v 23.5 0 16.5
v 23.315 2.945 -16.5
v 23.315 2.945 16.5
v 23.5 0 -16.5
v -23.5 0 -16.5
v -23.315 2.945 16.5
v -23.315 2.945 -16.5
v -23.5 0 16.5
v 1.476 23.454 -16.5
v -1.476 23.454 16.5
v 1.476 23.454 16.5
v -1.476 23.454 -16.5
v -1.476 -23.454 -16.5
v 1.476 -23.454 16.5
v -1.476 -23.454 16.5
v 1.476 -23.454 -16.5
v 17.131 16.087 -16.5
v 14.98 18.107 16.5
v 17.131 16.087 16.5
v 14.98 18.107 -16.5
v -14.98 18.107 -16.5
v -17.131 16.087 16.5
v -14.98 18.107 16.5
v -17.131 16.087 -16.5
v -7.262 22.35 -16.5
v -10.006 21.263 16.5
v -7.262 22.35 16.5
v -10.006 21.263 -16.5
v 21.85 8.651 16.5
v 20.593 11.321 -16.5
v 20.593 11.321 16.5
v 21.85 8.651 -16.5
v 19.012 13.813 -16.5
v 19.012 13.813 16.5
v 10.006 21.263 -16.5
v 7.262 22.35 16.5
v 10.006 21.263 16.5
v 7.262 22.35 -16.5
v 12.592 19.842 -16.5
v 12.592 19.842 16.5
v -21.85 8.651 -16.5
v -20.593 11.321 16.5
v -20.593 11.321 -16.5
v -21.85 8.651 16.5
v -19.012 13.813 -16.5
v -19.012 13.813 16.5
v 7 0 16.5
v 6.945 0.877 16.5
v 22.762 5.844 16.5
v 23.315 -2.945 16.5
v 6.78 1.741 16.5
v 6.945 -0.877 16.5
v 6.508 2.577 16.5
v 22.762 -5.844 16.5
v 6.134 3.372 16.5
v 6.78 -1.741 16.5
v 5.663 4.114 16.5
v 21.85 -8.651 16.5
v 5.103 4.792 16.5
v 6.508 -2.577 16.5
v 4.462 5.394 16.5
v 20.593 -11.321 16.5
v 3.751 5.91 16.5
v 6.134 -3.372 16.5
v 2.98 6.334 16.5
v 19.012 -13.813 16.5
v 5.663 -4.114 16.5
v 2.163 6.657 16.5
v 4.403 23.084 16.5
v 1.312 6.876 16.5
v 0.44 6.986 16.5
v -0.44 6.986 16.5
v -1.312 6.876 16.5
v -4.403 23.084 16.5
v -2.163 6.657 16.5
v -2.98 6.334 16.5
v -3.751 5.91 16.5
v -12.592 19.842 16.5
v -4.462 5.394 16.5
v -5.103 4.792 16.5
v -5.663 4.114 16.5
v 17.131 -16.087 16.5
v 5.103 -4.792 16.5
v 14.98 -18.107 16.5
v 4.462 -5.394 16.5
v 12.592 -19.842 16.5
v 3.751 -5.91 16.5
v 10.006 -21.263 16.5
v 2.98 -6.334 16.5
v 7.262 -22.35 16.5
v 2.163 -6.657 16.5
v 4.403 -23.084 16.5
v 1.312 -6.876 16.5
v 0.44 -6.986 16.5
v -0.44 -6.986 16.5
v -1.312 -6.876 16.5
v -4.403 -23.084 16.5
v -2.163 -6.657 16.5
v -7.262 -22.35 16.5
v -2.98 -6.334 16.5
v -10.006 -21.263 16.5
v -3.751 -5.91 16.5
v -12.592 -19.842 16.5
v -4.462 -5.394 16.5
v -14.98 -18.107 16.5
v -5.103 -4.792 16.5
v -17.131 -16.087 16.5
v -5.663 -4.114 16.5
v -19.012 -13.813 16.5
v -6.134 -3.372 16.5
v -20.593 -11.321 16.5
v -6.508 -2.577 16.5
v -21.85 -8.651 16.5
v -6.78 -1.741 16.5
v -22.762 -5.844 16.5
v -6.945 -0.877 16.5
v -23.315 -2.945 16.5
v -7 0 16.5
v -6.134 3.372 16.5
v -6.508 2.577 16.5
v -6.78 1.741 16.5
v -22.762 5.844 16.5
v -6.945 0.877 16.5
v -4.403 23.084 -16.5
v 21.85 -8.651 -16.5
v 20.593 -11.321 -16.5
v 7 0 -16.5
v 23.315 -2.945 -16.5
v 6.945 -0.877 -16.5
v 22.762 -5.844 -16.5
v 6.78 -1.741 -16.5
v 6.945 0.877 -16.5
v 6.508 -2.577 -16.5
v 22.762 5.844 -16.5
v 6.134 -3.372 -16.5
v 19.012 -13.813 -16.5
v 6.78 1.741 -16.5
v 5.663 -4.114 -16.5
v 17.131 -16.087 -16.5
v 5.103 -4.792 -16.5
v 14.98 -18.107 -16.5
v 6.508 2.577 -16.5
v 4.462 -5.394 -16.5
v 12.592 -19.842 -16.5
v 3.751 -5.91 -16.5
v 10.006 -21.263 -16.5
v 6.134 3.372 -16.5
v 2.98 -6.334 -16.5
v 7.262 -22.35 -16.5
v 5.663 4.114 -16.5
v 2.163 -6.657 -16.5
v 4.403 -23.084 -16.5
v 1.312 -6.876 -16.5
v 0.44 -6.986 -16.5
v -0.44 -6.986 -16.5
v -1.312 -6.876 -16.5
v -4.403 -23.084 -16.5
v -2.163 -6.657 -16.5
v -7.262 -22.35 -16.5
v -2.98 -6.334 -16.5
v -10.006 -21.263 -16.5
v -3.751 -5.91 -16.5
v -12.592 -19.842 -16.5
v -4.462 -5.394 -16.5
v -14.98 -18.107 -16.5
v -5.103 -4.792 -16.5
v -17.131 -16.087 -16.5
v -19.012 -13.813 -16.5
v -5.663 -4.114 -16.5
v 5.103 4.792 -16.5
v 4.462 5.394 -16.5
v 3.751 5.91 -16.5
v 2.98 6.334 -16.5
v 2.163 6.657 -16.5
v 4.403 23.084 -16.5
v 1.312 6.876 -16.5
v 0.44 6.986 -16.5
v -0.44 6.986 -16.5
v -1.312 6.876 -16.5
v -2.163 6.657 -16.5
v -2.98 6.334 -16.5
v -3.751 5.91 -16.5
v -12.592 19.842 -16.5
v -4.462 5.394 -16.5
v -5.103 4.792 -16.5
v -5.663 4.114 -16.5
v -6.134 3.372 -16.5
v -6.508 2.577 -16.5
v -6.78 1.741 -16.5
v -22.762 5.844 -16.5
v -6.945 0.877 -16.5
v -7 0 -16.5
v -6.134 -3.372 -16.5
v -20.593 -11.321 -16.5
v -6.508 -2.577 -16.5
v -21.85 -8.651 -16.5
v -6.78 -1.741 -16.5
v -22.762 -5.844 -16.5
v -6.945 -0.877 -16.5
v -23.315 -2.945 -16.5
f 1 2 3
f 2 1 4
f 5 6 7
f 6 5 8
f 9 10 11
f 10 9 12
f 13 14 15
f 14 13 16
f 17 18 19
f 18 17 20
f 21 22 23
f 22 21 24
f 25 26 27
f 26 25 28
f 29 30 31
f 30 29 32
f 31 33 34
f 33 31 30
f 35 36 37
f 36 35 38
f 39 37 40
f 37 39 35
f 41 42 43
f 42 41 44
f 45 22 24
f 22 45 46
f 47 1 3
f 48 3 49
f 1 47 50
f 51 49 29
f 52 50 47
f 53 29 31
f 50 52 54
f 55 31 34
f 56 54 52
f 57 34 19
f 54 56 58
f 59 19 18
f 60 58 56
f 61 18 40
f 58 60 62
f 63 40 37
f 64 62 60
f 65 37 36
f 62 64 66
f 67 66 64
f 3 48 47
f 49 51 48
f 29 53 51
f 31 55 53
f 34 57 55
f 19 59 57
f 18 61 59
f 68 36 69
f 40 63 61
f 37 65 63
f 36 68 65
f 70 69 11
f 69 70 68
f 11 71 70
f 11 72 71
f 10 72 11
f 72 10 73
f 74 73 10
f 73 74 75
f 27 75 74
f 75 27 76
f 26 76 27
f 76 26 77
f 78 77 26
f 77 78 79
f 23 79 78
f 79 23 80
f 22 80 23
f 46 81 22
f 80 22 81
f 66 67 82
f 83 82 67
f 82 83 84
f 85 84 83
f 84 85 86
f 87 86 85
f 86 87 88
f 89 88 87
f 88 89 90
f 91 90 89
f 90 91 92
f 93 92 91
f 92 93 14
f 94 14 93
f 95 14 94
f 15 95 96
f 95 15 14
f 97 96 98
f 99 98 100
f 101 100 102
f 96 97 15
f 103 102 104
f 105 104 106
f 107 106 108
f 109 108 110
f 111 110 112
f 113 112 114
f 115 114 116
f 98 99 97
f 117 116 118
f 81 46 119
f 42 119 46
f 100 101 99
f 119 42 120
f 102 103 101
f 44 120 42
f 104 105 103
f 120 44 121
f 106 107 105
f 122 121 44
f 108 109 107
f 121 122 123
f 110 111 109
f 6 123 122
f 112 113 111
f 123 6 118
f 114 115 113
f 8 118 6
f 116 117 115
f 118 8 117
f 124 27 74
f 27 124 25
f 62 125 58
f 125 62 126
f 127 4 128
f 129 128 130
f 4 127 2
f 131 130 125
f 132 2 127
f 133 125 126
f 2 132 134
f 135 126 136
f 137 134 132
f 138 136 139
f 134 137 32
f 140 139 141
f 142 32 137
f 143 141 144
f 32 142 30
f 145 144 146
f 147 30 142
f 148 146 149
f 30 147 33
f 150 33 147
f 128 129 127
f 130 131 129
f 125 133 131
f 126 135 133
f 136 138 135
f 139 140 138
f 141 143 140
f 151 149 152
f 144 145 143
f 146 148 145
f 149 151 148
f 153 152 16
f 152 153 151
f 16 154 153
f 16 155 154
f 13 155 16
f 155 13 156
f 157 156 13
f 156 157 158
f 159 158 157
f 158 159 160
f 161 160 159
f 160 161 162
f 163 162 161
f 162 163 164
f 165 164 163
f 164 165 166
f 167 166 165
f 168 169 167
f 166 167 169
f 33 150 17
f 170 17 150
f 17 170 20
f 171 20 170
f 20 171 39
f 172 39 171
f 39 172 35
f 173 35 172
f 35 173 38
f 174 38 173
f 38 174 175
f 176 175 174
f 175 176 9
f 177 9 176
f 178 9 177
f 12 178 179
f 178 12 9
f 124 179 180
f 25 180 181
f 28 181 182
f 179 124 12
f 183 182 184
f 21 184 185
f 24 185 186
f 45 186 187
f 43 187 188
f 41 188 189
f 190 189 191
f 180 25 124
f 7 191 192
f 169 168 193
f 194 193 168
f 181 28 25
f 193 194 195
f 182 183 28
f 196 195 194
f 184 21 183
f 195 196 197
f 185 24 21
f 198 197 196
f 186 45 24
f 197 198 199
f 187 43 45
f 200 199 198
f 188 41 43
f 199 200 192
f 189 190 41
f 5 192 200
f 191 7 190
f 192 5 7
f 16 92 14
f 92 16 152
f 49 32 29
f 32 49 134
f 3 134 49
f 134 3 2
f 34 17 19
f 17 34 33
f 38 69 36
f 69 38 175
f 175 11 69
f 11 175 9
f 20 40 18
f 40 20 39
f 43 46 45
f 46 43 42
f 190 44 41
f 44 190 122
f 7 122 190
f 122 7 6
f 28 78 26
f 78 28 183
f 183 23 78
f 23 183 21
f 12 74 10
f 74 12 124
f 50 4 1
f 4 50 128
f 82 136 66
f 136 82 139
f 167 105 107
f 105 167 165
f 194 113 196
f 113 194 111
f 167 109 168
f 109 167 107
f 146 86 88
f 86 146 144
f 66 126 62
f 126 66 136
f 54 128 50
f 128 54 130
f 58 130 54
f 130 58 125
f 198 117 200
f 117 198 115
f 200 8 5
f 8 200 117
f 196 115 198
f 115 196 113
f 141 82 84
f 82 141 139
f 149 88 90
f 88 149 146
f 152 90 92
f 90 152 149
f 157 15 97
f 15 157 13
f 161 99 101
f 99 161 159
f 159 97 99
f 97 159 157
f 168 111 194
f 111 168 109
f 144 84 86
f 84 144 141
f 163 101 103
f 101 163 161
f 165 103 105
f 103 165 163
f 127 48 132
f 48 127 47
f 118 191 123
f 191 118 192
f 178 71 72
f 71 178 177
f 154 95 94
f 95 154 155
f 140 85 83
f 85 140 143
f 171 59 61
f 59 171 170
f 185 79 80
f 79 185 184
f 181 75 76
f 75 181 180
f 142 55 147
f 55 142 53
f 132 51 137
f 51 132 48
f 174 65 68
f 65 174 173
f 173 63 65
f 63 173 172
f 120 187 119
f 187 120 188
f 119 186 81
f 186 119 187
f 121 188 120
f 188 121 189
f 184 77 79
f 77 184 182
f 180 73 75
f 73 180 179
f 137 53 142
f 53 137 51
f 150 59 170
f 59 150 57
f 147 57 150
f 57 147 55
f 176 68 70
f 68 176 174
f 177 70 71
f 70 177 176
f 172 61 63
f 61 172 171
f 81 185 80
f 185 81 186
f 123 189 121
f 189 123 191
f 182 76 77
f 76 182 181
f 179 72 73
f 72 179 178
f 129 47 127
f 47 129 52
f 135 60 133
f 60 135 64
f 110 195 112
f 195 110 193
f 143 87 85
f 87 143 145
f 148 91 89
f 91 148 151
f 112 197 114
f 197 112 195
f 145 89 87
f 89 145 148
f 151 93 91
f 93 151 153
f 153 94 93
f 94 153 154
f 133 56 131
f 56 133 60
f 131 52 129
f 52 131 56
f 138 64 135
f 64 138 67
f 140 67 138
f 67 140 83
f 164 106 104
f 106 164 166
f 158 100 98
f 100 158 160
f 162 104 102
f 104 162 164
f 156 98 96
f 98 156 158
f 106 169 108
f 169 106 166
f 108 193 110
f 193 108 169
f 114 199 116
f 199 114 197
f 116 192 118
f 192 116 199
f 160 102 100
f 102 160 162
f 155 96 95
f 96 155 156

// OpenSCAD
$fn = 50;


difference() {
	union() {
		translate(v = [0, 0, -16.5000000000]) {
			cylinder(h = 33, r = 23.5000000000);
		}
	}
	union() {
		translate(v = [0, 0, -100.0000000000]) {
			cylinder(h = 200, r = 7);
		}
	}
}
